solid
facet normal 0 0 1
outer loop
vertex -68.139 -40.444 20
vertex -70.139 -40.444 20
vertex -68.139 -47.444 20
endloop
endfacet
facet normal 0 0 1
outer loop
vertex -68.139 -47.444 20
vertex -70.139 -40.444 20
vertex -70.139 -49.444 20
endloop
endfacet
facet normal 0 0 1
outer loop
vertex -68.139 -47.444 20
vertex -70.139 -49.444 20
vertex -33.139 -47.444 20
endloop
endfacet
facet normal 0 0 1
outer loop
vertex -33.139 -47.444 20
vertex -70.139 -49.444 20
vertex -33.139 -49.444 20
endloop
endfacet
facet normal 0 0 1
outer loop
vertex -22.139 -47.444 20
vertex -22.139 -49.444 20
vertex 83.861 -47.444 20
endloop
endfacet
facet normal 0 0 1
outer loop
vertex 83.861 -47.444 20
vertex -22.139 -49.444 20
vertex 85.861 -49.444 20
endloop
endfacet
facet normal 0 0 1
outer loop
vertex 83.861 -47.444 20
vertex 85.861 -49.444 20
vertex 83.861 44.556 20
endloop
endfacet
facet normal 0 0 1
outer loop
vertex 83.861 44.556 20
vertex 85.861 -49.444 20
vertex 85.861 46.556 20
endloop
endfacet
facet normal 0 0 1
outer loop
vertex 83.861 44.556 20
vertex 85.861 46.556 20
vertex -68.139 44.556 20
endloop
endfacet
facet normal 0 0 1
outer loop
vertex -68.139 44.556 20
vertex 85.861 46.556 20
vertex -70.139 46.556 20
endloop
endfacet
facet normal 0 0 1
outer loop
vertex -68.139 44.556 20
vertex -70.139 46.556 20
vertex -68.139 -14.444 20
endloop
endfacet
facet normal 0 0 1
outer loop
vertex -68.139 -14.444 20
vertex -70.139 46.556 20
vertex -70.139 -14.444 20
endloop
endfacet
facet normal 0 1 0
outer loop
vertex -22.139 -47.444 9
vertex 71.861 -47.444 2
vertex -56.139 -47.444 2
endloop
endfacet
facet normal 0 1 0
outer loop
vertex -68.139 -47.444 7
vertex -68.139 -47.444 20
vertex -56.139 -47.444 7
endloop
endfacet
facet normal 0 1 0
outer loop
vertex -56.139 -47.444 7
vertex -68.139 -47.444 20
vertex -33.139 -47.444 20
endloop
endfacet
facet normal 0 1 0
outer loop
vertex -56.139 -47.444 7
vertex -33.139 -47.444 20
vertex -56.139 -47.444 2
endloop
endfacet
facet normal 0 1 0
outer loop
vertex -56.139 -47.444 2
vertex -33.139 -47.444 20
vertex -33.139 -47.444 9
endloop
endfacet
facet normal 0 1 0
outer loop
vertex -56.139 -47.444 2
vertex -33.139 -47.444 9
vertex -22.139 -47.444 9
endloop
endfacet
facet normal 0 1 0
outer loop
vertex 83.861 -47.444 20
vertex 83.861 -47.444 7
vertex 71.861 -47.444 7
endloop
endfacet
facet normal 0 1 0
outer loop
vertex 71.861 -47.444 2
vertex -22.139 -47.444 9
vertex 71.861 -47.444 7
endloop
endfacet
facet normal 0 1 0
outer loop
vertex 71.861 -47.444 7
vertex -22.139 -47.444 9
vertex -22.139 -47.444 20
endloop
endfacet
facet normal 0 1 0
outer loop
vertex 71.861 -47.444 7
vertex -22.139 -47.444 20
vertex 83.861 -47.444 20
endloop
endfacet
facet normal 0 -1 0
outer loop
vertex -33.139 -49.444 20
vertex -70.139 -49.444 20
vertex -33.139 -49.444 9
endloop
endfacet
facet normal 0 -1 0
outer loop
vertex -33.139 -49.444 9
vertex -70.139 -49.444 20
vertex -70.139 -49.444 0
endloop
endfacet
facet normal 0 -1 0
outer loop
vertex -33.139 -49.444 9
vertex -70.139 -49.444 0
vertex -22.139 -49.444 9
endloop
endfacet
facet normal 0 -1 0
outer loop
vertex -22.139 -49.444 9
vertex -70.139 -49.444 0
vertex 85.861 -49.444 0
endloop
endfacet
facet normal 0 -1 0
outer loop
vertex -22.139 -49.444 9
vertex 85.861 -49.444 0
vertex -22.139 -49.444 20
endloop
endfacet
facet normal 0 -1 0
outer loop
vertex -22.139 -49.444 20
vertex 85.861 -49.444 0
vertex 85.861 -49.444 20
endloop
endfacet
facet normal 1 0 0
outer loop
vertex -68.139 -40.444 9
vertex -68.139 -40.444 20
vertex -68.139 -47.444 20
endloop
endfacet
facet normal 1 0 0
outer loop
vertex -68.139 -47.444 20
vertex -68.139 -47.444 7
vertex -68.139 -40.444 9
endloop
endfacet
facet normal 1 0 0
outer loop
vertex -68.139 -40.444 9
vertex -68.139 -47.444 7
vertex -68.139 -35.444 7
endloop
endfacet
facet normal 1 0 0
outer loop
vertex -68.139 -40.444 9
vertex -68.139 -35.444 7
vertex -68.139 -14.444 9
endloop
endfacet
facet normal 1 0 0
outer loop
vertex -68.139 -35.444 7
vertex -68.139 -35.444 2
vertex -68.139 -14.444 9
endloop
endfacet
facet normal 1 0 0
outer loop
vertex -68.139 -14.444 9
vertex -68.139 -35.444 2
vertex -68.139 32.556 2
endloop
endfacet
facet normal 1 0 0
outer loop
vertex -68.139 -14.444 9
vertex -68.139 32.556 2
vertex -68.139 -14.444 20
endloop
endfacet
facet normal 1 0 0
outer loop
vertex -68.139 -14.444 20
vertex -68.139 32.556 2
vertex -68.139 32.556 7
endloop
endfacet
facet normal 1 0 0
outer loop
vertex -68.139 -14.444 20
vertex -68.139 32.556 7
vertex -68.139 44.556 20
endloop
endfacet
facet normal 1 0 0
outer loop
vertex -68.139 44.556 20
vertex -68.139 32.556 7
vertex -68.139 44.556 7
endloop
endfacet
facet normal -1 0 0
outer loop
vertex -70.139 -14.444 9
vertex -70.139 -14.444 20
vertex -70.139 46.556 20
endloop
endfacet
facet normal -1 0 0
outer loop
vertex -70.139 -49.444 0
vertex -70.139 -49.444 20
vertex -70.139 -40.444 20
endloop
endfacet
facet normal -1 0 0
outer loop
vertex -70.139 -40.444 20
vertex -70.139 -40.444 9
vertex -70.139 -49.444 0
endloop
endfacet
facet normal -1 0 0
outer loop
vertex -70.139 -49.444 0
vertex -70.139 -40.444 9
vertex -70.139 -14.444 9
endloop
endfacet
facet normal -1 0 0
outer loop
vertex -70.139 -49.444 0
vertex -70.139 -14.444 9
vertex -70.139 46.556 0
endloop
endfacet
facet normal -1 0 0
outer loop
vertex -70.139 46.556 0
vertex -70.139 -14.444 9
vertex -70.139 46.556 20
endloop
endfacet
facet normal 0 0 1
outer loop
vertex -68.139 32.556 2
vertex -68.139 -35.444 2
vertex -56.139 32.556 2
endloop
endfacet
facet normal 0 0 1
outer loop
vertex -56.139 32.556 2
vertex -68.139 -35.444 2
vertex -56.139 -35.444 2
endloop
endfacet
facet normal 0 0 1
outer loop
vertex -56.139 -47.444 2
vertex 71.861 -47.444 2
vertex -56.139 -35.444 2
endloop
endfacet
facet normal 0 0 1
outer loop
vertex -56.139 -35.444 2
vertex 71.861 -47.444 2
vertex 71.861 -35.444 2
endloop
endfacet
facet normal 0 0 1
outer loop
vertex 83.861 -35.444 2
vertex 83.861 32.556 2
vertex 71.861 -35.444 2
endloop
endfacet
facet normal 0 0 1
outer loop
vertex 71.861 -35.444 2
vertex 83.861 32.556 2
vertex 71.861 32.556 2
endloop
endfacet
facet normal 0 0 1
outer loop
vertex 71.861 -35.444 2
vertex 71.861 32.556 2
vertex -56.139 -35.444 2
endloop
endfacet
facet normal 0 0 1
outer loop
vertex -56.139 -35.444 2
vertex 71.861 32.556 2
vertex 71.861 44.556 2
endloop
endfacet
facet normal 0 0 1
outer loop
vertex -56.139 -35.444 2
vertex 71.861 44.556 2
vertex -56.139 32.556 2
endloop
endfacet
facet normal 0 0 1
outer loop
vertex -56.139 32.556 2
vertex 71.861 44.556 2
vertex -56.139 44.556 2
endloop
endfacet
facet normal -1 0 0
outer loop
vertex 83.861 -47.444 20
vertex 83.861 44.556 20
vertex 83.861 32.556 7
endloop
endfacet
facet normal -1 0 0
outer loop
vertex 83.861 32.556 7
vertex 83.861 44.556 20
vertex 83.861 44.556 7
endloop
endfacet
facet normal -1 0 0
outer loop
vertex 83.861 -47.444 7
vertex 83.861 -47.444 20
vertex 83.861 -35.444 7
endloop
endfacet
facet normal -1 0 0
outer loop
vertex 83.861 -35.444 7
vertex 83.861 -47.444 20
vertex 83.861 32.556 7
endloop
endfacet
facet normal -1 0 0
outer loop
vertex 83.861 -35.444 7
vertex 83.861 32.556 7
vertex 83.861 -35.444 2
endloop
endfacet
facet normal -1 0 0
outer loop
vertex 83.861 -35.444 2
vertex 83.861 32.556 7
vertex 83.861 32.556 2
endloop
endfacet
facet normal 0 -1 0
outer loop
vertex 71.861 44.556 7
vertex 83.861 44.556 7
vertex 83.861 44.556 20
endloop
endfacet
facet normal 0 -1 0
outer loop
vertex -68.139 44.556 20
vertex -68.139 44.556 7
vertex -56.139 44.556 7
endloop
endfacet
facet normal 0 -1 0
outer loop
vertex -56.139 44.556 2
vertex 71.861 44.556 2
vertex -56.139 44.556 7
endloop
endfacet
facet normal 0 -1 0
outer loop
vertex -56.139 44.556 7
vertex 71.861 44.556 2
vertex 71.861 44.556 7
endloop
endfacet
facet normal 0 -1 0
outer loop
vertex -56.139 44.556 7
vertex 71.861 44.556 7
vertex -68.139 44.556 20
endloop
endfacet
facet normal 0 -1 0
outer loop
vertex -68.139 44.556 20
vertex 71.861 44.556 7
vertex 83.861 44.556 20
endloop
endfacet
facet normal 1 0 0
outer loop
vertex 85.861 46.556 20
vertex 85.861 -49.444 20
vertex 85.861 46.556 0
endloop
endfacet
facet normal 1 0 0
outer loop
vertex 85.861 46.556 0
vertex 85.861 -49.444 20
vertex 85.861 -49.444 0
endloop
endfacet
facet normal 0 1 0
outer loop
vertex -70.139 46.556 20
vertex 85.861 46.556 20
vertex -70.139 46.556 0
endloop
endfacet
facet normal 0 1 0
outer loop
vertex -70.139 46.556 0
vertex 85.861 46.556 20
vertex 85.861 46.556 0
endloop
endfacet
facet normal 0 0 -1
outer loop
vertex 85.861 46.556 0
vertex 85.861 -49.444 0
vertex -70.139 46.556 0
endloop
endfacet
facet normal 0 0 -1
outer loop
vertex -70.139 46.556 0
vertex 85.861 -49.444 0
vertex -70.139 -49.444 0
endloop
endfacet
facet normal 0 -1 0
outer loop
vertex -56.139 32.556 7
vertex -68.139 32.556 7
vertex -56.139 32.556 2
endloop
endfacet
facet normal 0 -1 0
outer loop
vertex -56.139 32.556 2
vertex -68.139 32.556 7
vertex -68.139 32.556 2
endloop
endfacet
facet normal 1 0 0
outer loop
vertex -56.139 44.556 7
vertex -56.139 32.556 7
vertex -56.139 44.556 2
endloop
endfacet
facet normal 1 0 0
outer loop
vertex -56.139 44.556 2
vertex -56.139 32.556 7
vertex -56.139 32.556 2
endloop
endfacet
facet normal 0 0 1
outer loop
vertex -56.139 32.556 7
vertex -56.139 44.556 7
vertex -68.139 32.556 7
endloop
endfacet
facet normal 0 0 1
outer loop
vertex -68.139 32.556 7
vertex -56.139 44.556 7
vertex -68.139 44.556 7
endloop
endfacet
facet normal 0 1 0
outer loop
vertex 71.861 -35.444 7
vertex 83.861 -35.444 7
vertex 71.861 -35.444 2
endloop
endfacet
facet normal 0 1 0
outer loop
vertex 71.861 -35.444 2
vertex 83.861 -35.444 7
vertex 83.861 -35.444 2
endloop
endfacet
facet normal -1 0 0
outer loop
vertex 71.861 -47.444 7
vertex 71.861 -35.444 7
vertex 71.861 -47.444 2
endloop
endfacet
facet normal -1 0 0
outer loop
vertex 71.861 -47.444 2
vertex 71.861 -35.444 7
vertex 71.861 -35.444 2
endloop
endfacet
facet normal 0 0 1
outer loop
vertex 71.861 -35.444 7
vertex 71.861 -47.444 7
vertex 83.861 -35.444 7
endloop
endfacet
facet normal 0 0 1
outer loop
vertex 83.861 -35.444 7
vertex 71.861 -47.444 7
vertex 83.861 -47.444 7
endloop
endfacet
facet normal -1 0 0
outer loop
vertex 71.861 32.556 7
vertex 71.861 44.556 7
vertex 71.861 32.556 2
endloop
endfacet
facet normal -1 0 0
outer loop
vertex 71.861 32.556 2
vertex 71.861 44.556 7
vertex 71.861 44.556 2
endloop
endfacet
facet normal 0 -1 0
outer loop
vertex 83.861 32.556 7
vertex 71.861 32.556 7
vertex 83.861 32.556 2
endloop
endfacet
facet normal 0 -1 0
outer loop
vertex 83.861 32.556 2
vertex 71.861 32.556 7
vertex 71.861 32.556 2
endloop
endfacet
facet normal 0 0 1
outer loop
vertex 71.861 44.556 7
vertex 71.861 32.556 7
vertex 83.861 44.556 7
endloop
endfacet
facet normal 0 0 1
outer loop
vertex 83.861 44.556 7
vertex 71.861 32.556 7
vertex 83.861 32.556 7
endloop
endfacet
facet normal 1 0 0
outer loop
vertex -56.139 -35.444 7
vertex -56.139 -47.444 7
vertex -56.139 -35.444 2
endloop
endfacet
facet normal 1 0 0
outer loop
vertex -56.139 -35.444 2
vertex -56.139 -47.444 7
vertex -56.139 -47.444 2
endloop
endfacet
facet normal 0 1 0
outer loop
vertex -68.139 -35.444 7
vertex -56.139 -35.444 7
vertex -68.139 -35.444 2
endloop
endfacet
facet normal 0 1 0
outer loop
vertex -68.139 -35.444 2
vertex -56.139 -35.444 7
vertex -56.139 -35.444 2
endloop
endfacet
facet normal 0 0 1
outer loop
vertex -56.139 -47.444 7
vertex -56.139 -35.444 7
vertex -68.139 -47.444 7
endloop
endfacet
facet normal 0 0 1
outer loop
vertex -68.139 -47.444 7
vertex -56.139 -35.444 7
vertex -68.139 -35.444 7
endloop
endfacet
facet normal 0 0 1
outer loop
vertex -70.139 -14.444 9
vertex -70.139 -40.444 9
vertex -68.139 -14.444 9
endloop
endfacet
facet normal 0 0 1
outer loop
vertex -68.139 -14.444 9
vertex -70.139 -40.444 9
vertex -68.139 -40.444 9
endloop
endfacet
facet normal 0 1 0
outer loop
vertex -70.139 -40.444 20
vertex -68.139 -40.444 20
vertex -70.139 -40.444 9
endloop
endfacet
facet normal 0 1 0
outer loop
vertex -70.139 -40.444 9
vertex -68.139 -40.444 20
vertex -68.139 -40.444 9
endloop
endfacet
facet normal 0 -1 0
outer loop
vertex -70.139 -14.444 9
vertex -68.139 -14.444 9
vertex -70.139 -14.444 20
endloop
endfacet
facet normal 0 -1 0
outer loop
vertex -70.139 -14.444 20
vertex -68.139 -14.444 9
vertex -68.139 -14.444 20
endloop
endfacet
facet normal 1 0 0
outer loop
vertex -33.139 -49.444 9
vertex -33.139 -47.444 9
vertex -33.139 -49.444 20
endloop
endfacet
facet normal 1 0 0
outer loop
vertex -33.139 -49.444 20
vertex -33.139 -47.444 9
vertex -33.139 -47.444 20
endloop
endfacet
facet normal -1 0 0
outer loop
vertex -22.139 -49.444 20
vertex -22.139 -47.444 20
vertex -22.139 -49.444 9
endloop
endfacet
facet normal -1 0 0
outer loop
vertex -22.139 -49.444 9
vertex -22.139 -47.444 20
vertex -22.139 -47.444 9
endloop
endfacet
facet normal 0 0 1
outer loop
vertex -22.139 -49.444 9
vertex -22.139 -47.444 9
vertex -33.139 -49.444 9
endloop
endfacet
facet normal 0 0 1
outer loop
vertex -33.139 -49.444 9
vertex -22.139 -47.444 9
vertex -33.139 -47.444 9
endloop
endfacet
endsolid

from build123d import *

# Parameters (mm, degrees)
ESQUISSE1_W             = 156
ESQUISSE1_H             = 96
BOSS_EXTRU_1_DEPTH      = 2
ESQUISSE2_W             = 156
ESQUISSE2_H             = 96
ESQUISSE2_W_2           = 152
ESQUISSE2_H_2           = 92
BOSS_EXTRU_2_DEPTH      = 18
ESQUISSE3_W             = 12
ESQUISSE3_H             = 12
BOSS_EXTRU_3_DEPTH      = 5
ESQUISSE4_W             = 12.488308145
ESQUISSE4_H             = 26
ESQUISSE4_W_2           = 11
ESQUISSE4_H_2           = 11.218310707
ENL_V_MAT_EXTRU_1_DEPTH = 100.689086297


with BuildPart() as part:
    # Esquisse1 → Boss.-Extru.1 (new body)
    with BuildSketch(Plane.XY):
        with Locations((7.861406509, -1.444239291)):
            Rectangle(ESQUISSE1_W, ESQUISSE1_H)
    extrude(amount=BOSS_EXTRU_1_DEPTH)

    # Esquisse2 → Boss.-Extru.2 (add)
    with BuildSketch(Plane.XY.offset(2)):
        with Locations((7.861406509, -1.444239291)):
            Rectangle(ESQUISSE2_W, ESQUISSE2_H)
        with Locations((7.861406509, -1.444239291)):
            Rectangle(ESQUISSE2_W_2, ESQUISSE2_H_2, mode=Mode.SUBTRACT)
    extrude(amount=BOSS_EXTRU_2_DEPTH)

    # Esquisse3 → Boss.-Extru.3 (add)
    with BuildSketch(Plane.XY.offset(2)):
        with Locations((-62.138593491, 38.555760709)):
            Rectangle(ESQUISSE3_W, ESQUISSE3_H)
        with Locations((77.861406509, -41.444239291)):
            Rectangle(ESQUISSE3_W, ESQUISSE3_H)
        with Locations((77.861406509, 38.555760709)):
            Rectangle(ESQUISSE3_W, ESQUISSE3_H)
        with Locations((-62.138593491, -41.444239291)):
            Rectangle(ESQUISSE3_W, ESQUISSE3_H)
    extrude(amount=BOSS_EXTRU_3_DEPTH)

    # Esquisse4 → Enlèv. mat.-Extru.1 (cut, through all)
    with BuildSketch(Plane.XY.offset(9)):
        with Locations((-68.655939158, -27.444239291)):
            Rectangle(ESQUISSE4_W, ESQUISSE4_H)
        with Locations((-27.638593491, -49.280809473)):
            Rectangle(ESQUISSE4_W_2, ESQUISSE4_H_2)
    extrude(amount=ENL_V_MAT_EXTRU_1_DEPTH, mode=Mode.SUBTRACT)


solid = part.part
